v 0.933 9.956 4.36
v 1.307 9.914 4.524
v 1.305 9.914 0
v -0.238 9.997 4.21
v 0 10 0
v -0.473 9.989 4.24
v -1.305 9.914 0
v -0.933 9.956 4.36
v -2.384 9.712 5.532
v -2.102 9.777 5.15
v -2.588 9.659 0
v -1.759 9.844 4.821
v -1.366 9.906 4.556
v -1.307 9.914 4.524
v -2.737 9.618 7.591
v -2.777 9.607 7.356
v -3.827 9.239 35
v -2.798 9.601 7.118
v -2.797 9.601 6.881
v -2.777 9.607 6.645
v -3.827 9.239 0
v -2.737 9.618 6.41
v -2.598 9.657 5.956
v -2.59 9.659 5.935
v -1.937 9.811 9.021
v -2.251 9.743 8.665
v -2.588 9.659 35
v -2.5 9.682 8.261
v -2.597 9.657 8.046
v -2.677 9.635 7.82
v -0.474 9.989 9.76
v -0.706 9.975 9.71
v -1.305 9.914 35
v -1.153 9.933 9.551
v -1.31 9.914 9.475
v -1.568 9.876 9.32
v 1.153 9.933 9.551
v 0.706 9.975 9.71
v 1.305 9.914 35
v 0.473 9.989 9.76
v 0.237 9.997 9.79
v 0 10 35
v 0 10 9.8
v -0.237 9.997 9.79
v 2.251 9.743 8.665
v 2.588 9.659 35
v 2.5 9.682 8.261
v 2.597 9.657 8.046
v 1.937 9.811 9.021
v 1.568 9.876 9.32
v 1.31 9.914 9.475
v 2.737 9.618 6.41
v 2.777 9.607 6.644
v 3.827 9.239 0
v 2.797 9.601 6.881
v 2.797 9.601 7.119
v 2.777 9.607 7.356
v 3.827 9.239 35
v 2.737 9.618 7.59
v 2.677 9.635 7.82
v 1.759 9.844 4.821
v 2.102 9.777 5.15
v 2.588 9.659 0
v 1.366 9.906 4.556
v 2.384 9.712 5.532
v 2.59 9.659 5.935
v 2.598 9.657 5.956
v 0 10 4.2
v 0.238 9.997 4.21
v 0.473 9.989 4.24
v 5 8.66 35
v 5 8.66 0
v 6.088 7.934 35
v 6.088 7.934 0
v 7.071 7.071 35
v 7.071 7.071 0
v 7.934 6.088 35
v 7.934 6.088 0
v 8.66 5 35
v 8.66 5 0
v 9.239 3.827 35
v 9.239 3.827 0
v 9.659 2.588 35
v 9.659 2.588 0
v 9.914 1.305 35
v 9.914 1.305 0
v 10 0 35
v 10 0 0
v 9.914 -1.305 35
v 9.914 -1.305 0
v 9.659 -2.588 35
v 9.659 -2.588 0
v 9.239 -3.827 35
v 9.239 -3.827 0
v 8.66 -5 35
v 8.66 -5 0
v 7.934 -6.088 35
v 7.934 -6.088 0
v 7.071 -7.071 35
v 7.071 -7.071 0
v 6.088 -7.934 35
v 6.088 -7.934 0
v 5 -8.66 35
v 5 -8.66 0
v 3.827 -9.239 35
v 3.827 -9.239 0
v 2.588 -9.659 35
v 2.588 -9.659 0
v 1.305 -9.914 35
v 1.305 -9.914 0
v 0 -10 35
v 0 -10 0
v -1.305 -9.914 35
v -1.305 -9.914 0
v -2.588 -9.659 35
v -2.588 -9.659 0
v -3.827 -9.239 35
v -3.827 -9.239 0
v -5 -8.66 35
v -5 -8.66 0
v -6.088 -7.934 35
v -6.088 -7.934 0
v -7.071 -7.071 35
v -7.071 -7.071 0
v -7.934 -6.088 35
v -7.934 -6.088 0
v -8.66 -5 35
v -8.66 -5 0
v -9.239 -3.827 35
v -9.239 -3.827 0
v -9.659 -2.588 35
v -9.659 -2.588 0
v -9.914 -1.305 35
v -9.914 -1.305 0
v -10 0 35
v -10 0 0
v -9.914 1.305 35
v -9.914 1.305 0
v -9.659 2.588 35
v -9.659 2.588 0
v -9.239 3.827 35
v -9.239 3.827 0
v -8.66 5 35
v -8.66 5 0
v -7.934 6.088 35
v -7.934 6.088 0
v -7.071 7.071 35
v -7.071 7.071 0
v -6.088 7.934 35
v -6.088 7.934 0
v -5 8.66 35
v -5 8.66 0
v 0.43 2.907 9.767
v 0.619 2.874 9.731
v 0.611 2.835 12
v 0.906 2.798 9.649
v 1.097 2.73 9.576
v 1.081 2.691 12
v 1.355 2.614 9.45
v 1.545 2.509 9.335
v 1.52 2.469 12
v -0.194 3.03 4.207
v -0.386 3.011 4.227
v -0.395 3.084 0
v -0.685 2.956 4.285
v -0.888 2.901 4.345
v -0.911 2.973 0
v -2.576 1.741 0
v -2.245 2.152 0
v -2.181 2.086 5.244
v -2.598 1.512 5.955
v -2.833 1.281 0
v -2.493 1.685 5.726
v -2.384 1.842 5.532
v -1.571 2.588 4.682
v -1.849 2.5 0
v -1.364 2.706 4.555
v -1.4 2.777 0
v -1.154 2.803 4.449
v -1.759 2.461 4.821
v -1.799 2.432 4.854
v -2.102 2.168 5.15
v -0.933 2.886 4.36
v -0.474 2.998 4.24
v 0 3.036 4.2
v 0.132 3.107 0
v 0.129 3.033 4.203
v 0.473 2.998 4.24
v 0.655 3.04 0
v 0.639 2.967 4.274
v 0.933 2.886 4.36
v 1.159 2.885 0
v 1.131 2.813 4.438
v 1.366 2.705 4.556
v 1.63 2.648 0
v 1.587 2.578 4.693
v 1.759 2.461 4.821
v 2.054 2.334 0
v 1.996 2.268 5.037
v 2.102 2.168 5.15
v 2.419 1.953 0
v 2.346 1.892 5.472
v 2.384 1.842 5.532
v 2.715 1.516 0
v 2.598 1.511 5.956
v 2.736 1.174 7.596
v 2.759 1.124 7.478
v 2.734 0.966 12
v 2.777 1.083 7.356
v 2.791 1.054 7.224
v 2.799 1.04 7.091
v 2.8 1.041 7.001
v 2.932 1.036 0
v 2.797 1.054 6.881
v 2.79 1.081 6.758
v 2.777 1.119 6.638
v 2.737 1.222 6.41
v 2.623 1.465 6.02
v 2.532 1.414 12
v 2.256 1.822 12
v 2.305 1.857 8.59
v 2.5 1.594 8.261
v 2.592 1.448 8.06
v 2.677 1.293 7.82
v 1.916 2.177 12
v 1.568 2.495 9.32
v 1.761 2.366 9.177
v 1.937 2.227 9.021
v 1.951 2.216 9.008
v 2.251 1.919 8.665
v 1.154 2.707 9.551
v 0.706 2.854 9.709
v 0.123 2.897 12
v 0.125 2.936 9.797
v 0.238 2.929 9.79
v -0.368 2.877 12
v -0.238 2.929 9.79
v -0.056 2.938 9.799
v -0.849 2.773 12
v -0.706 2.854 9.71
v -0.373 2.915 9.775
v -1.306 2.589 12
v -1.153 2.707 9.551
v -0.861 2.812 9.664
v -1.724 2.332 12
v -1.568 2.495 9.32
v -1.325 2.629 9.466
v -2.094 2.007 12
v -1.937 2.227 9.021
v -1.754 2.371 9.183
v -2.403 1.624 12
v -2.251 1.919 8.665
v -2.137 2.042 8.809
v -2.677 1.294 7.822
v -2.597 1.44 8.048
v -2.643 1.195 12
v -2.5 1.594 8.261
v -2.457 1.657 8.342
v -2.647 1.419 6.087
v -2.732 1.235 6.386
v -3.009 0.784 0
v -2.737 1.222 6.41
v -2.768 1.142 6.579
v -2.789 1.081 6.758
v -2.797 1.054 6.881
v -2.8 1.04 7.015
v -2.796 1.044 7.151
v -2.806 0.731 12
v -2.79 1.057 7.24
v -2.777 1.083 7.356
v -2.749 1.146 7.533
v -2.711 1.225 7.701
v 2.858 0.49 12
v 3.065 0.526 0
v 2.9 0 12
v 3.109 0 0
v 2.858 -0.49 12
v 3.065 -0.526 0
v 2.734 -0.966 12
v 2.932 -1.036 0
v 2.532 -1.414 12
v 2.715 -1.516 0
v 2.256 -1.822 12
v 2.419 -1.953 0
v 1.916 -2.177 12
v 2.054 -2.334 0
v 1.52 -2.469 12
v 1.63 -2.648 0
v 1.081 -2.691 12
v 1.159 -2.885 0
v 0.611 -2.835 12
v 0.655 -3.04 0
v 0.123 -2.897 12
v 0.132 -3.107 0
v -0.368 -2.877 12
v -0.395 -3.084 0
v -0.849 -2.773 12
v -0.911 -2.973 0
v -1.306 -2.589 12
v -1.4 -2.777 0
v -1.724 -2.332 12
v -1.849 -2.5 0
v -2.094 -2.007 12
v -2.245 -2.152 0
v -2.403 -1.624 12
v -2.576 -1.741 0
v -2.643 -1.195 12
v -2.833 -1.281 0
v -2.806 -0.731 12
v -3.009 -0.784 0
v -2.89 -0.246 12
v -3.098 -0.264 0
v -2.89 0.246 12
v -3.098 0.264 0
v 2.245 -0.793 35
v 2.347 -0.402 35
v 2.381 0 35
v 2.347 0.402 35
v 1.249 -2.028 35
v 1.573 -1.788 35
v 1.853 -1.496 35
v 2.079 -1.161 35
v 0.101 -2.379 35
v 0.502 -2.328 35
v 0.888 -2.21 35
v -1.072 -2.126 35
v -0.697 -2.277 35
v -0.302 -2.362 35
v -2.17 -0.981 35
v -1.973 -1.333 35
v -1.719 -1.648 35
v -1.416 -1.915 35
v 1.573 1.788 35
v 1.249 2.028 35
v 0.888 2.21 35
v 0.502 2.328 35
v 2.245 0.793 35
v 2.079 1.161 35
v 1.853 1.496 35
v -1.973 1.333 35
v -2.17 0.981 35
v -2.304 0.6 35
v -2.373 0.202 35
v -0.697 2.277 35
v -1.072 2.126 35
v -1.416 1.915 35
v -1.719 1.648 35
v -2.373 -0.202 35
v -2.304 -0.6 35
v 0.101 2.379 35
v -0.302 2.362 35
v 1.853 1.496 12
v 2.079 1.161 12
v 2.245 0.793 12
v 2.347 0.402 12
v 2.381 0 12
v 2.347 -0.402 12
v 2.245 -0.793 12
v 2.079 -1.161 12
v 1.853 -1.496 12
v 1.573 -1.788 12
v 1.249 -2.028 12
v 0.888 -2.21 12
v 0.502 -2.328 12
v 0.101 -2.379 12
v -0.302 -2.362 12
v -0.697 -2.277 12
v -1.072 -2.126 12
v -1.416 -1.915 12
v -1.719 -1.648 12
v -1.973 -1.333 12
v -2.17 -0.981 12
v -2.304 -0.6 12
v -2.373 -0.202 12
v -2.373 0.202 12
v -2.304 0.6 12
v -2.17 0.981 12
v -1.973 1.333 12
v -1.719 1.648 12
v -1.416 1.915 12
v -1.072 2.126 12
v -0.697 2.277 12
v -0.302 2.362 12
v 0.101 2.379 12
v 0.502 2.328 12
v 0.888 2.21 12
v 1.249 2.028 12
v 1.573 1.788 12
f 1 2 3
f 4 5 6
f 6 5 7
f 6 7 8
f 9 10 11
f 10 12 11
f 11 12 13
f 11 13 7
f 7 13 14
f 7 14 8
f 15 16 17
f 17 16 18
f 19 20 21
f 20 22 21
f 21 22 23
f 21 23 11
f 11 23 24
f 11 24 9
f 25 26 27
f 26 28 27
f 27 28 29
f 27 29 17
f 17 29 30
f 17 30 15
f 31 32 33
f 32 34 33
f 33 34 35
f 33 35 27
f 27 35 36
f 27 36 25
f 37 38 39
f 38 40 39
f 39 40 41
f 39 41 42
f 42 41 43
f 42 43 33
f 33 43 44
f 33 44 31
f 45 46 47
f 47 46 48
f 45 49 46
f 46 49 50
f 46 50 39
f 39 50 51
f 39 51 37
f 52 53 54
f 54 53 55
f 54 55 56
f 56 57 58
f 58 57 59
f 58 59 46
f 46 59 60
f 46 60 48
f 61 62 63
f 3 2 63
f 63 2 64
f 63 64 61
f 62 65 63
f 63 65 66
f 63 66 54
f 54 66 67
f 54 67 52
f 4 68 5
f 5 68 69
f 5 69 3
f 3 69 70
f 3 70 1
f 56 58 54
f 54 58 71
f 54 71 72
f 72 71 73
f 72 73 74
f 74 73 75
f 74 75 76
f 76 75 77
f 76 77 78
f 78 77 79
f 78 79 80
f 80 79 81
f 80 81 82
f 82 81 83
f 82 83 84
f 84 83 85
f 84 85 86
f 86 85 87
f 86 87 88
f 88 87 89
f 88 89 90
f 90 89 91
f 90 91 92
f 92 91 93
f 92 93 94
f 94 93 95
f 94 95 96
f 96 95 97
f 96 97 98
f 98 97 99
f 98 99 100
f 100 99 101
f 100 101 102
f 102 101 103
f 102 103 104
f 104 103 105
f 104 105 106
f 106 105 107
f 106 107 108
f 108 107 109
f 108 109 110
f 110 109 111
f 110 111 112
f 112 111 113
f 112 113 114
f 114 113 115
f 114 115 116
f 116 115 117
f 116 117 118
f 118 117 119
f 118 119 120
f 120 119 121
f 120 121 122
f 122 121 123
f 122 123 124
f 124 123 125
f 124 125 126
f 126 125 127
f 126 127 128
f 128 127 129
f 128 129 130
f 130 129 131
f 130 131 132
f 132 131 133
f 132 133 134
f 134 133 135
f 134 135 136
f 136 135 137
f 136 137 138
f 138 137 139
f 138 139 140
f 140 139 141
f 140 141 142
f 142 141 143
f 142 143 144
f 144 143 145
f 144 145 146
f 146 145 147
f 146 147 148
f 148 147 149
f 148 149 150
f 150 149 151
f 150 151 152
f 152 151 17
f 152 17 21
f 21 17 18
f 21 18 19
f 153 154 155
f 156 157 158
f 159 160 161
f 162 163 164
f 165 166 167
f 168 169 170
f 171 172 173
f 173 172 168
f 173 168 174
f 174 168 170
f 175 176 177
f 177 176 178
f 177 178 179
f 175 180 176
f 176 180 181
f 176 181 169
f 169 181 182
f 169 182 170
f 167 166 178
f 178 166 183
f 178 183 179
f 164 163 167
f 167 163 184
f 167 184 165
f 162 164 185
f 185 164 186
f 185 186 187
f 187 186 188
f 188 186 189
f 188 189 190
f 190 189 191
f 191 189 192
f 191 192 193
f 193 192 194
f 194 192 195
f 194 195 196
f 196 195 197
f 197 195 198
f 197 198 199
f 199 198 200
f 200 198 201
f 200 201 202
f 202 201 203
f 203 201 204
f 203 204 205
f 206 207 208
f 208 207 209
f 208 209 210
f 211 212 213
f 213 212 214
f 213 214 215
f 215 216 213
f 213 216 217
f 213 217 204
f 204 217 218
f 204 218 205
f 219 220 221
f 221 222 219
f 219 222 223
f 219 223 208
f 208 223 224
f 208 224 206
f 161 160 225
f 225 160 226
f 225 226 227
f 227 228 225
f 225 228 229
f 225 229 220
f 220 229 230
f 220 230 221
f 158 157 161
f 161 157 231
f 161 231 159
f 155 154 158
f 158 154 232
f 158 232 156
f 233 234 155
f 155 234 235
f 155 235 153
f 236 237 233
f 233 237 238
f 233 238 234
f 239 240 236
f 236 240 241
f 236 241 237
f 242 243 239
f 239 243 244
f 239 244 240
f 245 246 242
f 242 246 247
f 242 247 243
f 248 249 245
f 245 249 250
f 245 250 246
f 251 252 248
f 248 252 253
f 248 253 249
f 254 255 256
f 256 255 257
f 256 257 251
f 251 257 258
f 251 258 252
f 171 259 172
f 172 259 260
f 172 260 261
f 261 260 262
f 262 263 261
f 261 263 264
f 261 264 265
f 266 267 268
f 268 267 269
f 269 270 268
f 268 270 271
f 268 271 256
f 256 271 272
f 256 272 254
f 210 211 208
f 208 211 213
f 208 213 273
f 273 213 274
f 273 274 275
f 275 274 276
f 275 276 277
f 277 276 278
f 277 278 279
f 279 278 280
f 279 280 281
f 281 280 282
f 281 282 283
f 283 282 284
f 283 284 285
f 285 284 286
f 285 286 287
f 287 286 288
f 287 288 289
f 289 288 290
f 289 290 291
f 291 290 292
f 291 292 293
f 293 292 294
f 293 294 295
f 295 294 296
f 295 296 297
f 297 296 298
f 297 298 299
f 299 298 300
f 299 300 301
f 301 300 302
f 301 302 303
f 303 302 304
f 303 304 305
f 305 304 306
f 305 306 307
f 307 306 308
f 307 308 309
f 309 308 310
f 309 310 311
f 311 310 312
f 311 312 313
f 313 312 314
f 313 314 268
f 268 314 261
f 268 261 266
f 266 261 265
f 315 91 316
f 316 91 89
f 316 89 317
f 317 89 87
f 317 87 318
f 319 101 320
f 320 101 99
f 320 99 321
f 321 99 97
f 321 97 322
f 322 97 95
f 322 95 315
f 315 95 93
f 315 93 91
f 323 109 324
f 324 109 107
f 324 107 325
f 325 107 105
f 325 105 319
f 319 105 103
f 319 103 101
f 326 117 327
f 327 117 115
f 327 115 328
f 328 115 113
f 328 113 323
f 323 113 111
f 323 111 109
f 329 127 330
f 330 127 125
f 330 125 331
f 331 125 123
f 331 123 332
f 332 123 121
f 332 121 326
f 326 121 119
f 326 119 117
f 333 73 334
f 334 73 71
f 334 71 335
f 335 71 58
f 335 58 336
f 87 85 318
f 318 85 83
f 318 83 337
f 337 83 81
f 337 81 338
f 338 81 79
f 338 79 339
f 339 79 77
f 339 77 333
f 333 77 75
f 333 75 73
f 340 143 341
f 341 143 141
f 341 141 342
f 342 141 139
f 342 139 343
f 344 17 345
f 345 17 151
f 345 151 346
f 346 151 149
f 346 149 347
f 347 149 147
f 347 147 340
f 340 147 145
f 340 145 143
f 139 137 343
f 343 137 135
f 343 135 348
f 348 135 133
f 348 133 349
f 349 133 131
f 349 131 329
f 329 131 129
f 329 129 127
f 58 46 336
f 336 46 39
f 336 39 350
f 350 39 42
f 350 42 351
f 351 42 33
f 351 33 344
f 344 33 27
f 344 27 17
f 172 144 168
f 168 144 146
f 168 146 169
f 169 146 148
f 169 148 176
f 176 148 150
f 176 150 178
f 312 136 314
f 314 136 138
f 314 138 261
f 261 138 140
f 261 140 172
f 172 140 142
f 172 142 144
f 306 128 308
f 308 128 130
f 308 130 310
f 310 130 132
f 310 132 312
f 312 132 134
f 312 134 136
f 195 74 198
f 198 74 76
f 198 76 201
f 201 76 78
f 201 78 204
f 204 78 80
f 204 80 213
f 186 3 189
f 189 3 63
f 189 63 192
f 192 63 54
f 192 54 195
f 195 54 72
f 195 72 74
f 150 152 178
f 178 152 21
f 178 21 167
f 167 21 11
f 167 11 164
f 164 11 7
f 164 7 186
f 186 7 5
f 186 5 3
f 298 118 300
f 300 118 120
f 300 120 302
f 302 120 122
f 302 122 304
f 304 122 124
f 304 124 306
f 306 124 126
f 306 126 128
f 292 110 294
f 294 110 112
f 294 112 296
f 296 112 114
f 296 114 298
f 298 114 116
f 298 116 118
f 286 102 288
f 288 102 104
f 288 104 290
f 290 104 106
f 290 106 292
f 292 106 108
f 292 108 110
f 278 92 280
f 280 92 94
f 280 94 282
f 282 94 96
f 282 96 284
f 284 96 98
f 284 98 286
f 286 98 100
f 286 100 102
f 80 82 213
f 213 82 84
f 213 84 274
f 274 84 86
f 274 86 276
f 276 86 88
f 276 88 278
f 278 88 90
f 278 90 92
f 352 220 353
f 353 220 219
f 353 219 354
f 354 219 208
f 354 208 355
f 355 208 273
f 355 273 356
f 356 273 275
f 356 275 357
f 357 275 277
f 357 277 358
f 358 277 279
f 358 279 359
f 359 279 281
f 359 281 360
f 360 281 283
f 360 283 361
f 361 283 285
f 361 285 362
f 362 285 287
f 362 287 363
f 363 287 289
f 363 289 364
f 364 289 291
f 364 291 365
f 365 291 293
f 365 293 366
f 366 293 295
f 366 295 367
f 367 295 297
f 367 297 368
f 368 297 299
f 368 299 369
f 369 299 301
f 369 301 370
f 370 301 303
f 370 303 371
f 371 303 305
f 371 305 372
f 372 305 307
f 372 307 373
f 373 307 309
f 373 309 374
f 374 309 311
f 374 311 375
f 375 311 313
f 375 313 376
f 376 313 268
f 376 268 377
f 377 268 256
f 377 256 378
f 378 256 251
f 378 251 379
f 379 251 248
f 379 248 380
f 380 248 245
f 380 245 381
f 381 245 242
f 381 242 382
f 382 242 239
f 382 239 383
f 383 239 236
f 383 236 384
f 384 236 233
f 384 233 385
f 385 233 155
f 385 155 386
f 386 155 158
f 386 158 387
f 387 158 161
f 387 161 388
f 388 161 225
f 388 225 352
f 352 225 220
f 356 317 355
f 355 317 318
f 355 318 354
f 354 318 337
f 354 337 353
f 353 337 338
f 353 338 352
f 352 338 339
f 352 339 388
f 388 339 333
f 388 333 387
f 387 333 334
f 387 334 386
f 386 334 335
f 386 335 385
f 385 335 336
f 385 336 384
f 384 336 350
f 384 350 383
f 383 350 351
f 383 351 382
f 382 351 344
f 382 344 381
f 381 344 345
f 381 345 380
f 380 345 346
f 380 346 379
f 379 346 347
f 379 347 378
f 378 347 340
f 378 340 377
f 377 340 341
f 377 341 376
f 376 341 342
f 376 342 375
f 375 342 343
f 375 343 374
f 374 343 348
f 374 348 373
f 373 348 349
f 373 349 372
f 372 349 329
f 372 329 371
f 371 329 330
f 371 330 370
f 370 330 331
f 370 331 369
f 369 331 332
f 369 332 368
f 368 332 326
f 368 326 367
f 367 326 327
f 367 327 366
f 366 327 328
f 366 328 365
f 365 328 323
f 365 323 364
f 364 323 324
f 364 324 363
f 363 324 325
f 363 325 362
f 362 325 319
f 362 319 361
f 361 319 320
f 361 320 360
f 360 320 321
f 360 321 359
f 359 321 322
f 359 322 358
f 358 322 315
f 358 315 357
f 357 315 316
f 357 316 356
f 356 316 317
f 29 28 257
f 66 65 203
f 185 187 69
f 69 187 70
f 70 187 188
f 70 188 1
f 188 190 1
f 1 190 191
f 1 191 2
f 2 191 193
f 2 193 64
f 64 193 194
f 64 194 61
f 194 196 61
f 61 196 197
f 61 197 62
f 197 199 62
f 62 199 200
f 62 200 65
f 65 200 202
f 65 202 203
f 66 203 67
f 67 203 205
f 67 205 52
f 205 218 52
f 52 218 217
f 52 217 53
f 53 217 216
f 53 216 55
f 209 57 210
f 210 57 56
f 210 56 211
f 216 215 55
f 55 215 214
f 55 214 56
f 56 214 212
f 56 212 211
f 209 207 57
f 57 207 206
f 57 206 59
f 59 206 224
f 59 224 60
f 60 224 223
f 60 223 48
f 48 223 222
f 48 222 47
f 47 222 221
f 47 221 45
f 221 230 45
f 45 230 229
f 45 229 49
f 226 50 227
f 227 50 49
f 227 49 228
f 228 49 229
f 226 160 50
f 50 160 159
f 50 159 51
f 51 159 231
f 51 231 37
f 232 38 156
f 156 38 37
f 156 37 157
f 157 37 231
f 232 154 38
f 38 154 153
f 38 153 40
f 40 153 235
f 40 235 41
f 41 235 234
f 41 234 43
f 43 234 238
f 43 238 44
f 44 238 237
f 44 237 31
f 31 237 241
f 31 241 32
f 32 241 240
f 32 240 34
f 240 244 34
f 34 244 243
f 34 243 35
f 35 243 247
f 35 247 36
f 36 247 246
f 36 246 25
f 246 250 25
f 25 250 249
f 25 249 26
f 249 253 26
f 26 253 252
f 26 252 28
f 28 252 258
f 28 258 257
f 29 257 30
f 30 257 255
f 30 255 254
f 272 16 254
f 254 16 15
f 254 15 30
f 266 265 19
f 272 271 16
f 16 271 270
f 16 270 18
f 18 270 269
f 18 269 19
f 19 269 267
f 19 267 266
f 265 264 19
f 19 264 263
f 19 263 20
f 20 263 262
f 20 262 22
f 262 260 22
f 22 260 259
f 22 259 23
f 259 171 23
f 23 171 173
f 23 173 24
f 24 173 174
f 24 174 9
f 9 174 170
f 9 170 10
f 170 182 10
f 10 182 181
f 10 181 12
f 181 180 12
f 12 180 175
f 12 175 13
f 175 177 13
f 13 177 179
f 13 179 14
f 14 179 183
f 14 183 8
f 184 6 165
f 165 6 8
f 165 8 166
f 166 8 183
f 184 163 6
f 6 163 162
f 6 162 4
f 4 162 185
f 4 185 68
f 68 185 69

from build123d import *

# Parameters (mm, degrees)
SKETCH1_R           = 10
BOSS_EXTRUDE1_DEPTH = 35
SKETCH2_R           = 2.9
CUT_EXTRUDE1_DEPTH  = 12
CUT_EXTRUDE1_DRAFT  = 1
SKETCH4_R           = 2.38125
CUT_EXTRUDE2_DEPTH  = 35
SKETCH5_R           = 2.8
CUT_EXTRUDE3_DEPTH  = 38.749172176


with BuildPart() as part:
    # Sketch1 → Boss-Extrude1 (new body)
    with BuildSketch(Plane.XY):
        Circle(SKETCH1_R)
    extrude(amount=BOSS_EXTRUDE1_DEPTH)


with BuildPart() as cut_extrude1_tool:
    # Sketch2 → Cut-Extrude1 (with draft: the straight prism first)
    with BuildSketch(Plane.XY.offset(12)):
        Circle(SKETCH2_R)
    extrude(amount=-CUT_EXTRUDE1_DEPTH)
    # Cut-Extrude1: the draft: its side faces are tilted about the plane it starts from
    cut_extrude1_sides = [cut_extrude1_tool.faces().sort_by_distance(p)[0] for p in [
        (-2.9, 0, 6),
    ]]
    draft(cut_extrude1_sides, Plane.XY.offset(12), CUT_EXTRUDE1_DRAFT)


with BuildPart() as part_1:
    add(part.part)

    # Cut-Extrude1: cut by cut_extrude1_tool
    add(cut_extrude1_tool.part, mode=Mode.SUBTRACT)

    # Sketch4 → Cut-Extrude2 (cut)
    with BuildSketch(Plane.XY.offset(35)):
        Circle(SKETCH4_R)
    extrude(amount=-CUT_EXTRUDE2_DEPTH, mode=Mode.SUBTRACT)

    # Sketch5 → Cut-Extrude3 (cut, through all)
    with BuildSketch(Plane(origin=(0, 0, 0), x_dir=(1, 0, 0), z_dir=(0, 1, 0))):
        with Locations(Location((0, -7, 0), (0, 0, 90))):
            Circle(SKETCH5_R)
    extrude(amount=CUT_EXTRUDE3_DEPTH, mode=Mode.SUBTRACT)


solid = part_1.part
